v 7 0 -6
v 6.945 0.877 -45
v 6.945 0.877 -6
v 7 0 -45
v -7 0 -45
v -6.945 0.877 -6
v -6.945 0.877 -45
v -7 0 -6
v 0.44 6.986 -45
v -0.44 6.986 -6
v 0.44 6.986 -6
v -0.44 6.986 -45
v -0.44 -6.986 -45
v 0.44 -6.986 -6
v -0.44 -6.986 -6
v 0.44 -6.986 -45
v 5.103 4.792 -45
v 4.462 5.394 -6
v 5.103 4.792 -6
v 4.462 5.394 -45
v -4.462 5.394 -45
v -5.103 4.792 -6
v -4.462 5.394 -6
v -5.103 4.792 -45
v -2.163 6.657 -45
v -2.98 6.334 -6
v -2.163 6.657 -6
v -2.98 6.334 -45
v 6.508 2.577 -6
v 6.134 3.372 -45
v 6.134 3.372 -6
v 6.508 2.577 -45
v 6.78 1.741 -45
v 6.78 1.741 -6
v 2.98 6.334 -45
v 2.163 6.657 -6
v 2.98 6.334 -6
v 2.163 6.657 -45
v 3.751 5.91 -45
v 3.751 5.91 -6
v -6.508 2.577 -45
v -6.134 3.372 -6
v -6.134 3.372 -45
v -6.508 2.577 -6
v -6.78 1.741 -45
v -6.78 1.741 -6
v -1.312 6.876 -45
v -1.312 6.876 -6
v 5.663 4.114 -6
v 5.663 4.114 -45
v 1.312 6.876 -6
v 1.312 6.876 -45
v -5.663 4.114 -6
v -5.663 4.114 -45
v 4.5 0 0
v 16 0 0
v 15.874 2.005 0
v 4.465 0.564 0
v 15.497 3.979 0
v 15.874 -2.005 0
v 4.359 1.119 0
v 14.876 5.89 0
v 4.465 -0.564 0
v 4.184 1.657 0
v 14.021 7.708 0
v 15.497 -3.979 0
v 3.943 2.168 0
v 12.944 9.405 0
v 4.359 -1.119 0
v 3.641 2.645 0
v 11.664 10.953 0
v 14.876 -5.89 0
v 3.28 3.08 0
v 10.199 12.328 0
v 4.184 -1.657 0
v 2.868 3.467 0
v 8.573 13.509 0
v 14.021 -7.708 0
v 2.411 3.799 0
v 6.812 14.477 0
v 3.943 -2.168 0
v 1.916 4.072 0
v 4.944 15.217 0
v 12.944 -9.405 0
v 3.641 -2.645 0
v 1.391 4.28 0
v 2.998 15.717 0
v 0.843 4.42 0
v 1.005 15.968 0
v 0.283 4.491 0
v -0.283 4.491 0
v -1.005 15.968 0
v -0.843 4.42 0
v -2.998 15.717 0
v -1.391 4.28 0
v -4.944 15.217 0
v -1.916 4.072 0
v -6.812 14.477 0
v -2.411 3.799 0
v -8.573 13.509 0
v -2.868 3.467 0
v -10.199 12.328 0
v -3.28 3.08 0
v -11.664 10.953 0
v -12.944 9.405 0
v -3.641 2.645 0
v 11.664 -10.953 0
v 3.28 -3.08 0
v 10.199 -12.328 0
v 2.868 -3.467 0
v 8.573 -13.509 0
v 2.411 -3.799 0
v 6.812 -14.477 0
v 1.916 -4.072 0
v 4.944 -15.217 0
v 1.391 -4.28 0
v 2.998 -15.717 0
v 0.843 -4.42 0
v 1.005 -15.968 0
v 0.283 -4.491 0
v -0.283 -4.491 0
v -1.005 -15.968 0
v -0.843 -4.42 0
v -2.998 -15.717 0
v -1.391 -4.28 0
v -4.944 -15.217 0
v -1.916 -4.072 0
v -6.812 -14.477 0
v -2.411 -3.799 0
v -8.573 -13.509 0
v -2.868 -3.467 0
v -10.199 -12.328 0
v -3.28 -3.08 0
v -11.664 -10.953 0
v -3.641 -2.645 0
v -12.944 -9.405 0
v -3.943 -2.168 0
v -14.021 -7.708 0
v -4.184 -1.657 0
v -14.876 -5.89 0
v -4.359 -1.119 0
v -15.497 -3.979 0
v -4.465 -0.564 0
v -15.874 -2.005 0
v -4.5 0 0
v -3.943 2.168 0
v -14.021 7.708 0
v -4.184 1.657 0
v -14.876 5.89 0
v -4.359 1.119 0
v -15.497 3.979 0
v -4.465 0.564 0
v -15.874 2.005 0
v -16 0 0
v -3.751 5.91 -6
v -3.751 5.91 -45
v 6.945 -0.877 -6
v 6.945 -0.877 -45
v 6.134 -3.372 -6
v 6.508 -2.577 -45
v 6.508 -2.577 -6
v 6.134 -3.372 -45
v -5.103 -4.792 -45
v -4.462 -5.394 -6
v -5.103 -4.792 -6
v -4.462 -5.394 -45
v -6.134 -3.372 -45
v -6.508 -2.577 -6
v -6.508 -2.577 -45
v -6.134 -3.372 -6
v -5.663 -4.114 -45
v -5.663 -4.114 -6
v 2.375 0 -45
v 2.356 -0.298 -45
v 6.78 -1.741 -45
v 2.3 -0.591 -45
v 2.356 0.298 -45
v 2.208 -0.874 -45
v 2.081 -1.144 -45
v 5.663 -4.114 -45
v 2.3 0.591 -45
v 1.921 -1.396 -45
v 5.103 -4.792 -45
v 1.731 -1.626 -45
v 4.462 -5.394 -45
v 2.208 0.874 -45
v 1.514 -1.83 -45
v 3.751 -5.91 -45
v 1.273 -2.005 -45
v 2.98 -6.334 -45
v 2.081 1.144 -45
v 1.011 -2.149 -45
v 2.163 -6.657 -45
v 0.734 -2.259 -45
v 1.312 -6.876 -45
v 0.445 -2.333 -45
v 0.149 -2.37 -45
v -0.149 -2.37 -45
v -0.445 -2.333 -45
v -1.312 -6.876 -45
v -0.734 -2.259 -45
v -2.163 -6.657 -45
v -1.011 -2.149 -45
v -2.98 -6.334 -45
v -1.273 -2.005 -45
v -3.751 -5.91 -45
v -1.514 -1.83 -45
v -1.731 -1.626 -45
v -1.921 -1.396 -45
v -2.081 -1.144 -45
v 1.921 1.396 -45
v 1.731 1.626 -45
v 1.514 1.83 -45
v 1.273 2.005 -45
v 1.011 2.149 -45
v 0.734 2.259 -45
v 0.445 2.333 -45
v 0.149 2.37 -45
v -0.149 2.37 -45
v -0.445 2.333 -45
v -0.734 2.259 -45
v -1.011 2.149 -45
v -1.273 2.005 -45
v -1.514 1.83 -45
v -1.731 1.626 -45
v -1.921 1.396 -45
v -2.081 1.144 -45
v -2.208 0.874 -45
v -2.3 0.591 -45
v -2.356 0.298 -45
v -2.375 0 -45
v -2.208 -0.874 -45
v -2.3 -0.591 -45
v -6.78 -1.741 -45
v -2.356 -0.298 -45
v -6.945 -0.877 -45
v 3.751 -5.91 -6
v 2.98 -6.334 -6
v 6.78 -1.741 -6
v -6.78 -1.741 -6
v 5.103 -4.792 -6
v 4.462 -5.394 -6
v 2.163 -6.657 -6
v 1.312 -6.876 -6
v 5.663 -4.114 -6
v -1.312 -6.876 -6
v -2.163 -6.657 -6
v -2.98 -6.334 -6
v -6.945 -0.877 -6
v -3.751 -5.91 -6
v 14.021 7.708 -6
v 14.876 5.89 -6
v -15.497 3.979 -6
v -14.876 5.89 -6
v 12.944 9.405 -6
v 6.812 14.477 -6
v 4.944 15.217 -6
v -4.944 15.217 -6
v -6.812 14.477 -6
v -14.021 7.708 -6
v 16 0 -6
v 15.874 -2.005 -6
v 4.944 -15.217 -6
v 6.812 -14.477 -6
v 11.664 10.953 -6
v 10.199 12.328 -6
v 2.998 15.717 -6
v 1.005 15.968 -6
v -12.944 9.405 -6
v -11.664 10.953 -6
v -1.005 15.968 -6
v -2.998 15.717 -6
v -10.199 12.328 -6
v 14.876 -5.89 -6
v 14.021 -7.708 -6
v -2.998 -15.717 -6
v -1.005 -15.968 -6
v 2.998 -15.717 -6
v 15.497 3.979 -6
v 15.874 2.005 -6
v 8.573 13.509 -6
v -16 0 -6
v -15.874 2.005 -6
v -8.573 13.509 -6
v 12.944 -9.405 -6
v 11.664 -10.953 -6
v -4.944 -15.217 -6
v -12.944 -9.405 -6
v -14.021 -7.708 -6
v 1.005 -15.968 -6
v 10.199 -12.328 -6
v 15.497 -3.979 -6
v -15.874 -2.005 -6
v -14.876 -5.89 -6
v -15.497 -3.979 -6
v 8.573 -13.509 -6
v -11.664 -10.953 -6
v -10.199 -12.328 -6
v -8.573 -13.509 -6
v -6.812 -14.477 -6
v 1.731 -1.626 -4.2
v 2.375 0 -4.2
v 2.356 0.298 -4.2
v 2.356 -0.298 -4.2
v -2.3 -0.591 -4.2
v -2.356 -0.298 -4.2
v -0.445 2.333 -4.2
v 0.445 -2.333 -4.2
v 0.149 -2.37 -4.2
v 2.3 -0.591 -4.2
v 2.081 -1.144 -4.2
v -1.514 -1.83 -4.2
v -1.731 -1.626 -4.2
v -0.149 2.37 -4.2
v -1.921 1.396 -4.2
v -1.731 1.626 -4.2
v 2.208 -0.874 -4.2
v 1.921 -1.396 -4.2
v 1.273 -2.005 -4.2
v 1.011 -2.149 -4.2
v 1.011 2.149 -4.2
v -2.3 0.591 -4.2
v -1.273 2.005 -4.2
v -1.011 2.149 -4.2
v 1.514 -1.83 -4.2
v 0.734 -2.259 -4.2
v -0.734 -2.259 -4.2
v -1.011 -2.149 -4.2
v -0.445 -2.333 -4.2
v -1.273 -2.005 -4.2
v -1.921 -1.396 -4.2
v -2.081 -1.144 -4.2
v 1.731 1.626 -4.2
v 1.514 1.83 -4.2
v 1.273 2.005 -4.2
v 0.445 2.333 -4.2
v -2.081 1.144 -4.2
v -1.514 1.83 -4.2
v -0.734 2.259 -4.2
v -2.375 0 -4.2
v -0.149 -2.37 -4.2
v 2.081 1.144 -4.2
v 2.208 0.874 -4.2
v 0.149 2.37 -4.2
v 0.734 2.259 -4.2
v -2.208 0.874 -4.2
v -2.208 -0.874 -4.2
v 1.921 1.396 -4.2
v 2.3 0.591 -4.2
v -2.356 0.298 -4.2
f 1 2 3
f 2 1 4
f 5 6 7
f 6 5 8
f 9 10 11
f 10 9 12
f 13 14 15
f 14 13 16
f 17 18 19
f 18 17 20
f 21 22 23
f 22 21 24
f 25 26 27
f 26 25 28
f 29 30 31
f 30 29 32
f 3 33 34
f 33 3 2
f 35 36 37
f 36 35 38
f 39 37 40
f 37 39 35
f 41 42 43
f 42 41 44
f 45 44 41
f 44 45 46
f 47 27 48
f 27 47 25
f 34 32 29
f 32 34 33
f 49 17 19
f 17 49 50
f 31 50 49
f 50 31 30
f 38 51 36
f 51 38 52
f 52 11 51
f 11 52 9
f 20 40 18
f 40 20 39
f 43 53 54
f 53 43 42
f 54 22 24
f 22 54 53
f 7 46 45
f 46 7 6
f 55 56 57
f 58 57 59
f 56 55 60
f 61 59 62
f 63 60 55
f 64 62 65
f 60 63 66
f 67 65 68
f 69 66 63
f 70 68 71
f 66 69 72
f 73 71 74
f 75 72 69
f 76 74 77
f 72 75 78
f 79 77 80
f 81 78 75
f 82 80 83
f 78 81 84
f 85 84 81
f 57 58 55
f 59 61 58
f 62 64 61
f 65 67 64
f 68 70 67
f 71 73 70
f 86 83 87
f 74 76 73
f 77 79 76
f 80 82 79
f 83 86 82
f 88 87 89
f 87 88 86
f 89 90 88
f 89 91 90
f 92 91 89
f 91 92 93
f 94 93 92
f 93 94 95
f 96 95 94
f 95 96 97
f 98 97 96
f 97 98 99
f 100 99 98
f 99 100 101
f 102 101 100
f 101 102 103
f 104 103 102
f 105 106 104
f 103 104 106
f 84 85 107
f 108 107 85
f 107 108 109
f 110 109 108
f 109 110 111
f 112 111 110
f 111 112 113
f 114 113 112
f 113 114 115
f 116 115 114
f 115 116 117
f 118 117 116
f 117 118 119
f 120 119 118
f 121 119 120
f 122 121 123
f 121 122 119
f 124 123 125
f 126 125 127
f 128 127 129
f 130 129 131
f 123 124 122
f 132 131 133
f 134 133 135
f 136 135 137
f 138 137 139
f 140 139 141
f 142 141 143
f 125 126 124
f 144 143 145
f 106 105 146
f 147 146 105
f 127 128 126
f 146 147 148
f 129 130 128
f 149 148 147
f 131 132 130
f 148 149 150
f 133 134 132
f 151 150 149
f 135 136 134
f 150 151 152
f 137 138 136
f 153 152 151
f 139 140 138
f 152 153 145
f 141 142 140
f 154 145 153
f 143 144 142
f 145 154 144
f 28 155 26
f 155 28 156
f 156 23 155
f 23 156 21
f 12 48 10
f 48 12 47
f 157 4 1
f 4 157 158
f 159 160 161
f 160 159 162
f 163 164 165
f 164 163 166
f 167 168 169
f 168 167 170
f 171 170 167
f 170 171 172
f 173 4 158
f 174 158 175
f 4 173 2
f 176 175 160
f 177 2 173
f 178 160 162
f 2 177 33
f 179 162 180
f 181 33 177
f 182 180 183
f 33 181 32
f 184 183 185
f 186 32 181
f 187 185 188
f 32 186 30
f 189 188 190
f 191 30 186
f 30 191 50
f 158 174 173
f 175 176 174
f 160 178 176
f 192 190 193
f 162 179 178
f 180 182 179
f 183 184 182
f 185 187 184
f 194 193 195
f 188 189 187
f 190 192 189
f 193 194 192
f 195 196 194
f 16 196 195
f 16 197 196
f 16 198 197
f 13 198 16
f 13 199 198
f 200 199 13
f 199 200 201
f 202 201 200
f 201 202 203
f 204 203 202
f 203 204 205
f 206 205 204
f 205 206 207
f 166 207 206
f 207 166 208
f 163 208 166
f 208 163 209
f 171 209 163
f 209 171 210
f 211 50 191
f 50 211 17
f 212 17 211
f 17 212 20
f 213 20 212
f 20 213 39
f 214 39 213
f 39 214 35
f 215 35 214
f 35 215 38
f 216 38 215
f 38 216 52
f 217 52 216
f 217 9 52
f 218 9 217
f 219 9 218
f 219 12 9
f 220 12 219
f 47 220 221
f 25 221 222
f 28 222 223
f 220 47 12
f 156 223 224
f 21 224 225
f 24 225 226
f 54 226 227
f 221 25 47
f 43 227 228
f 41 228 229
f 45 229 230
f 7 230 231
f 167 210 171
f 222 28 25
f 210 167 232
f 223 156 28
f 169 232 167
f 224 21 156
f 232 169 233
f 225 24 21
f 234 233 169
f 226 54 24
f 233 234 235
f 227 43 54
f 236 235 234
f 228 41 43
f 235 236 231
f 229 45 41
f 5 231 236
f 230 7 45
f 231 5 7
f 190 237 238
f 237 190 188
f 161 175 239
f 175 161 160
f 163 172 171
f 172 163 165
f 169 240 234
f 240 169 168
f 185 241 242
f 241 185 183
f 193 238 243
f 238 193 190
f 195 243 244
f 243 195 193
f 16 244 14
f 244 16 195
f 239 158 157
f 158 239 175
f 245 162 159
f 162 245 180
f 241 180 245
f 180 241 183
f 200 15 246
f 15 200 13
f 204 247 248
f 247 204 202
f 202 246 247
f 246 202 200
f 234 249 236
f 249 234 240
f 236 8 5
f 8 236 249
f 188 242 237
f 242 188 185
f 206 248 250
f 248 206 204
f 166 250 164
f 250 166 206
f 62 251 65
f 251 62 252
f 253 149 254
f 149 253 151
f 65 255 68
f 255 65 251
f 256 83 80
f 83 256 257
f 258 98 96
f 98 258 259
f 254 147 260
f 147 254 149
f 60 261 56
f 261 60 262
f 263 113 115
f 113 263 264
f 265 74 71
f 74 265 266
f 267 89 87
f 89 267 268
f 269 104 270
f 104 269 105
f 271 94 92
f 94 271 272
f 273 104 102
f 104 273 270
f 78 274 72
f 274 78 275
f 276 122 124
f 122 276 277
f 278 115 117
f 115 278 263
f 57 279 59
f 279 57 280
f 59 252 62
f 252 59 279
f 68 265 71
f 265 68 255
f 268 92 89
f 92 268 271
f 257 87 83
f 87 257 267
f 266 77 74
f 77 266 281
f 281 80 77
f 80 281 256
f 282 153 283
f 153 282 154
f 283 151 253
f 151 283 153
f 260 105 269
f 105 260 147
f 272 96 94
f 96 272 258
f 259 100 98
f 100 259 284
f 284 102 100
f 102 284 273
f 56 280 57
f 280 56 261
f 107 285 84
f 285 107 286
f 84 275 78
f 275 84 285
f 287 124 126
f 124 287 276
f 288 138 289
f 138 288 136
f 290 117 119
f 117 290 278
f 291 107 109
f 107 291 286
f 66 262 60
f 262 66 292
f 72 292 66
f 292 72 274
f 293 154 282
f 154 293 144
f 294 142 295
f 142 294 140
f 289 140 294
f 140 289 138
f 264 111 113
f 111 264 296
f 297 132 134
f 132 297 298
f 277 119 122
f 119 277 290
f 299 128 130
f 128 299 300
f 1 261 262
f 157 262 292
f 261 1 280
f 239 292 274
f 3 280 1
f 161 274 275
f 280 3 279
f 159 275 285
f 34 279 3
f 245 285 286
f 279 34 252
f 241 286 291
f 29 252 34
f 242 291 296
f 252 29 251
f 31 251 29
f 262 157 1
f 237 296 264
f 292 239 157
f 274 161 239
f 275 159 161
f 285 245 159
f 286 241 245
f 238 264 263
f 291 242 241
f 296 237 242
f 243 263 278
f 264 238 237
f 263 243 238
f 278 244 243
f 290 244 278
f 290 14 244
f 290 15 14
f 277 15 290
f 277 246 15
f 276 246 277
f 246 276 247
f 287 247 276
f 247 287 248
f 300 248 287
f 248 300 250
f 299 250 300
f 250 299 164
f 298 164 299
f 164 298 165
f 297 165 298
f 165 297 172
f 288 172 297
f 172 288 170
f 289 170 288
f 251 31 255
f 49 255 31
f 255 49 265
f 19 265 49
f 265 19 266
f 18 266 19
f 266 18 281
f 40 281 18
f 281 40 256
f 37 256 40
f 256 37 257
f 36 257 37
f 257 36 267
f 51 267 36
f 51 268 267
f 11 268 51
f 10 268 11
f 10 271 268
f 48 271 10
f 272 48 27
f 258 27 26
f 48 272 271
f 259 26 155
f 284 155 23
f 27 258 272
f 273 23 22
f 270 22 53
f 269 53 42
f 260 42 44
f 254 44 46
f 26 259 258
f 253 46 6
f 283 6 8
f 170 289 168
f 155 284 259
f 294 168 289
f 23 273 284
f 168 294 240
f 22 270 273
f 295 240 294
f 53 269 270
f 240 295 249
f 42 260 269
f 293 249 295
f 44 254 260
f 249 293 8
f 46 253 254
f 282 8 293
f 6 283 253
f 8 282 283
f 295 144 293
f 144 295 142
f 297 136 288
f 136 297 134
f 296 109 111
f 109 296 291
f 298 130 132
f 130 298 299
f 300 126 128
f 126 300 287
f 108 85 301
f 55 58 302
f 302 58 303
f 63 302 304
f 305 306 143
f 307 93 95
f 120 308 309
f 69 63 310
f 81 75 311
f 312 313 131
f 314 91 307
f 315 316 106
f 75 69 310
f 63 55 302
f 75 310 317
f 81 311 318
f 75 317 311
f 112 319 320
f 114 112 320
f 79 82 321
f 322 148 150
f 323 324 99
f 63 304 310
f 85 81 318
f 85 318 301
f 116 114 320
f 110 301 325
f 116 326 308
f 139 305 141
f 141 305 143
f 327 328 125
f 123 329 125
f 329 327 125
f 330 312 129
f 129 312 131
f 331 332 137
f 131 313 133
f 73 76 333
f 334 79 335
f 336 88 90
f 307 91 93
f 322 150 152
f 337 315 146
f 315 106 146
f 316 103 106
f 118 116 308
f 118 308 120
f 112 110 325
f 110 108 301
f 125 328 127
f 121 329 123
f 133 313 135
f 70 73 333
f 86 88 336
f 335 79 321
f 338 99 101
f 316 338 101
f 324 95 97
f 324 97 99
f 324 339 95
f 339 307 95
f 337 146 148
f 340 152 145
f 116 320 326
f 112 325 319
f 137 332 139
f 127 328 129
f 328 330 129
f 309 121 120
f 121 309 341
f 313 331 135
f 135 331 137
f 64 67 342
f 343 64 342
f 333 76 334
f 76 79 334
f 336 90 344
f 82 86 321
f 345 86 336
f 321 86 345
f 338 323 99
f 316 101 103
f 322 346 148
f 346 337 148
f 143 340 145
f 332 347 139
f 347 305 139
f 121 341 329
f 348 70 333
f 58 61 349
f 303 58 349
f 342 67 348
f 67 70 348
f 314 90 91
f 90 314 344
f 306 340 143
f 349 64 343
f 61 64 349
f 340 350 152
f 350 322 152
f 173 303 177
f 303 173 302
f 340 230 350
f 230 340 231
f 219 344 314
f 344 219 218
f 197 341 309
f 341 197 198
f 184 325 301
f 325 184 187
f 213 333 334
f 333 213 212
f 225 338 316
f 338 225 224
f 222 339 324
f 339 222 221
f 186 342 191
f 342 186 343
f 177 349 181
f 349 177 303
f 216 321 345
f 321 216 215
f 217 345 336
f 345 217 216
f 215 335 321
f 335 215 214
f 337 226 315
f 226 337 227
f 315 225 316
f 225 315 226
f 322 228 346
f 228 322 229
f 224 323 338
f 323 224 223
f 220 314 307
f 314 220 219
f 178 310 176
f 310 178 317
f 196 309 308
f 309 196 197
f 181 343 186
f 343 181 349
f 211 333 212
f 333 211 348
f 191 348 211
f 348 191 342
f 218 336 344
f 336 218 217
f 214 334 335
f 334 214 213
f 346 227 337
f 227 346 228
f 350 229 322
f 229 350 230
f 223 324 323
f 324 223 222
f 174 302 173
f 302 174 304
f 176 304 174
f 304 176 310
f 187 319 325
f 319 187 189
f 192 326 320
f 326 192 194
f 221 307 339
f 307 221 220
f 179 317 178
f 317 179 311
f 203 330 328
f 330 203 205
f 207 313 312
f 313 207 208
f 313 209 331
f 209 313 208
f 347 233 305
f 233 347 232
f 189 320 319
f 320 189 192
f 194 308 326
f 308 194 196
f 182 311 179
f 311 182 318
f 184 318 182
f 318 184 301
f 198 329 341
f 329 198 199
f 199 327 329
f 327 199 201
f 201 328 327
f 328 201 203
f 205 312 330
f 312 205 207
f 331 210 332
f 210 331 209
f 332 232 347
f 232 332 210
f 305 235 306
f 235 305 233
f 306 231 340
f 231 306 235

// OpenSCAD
$fn = 50;


difference() {
	union() {
		translate(v = [0, 0, -45.0000000000]) {
			cylinder(h = 45, r = 7.0000000000);
		}
		translate(v = [0, 0, -6.0000000000]) {
			cylinder(h = 6, r = 16.0000000000);
		}
	}
	union() {
		translate(v = [0, 0, 0]) {
			rotate(a = [0, 0, 0]) {
				difference() {
					union() {
						#translate(v = [0, 0, -45.0000000000]) {
							cylinder(h = 45, r = 2.2500000000);
						}
						#translate(v = [0, 0, -4.2000000000]) {
							cylinder(h = 4.2000000000, r = 7.0000000000, r1 = 2.3750000000, r2 = 4.5000000000);
						}
						#translate(v = [0, 0, -45.0000000000]) {
							cylinder(h = 45, r = 2.3750000000);
						}
						#translate(v = [0, 0, -45.0000000000]) {
							cylinder(h = 45, r = 2.2500000000);
						}
					}
					union();
				}
			}
		}
	}
}
